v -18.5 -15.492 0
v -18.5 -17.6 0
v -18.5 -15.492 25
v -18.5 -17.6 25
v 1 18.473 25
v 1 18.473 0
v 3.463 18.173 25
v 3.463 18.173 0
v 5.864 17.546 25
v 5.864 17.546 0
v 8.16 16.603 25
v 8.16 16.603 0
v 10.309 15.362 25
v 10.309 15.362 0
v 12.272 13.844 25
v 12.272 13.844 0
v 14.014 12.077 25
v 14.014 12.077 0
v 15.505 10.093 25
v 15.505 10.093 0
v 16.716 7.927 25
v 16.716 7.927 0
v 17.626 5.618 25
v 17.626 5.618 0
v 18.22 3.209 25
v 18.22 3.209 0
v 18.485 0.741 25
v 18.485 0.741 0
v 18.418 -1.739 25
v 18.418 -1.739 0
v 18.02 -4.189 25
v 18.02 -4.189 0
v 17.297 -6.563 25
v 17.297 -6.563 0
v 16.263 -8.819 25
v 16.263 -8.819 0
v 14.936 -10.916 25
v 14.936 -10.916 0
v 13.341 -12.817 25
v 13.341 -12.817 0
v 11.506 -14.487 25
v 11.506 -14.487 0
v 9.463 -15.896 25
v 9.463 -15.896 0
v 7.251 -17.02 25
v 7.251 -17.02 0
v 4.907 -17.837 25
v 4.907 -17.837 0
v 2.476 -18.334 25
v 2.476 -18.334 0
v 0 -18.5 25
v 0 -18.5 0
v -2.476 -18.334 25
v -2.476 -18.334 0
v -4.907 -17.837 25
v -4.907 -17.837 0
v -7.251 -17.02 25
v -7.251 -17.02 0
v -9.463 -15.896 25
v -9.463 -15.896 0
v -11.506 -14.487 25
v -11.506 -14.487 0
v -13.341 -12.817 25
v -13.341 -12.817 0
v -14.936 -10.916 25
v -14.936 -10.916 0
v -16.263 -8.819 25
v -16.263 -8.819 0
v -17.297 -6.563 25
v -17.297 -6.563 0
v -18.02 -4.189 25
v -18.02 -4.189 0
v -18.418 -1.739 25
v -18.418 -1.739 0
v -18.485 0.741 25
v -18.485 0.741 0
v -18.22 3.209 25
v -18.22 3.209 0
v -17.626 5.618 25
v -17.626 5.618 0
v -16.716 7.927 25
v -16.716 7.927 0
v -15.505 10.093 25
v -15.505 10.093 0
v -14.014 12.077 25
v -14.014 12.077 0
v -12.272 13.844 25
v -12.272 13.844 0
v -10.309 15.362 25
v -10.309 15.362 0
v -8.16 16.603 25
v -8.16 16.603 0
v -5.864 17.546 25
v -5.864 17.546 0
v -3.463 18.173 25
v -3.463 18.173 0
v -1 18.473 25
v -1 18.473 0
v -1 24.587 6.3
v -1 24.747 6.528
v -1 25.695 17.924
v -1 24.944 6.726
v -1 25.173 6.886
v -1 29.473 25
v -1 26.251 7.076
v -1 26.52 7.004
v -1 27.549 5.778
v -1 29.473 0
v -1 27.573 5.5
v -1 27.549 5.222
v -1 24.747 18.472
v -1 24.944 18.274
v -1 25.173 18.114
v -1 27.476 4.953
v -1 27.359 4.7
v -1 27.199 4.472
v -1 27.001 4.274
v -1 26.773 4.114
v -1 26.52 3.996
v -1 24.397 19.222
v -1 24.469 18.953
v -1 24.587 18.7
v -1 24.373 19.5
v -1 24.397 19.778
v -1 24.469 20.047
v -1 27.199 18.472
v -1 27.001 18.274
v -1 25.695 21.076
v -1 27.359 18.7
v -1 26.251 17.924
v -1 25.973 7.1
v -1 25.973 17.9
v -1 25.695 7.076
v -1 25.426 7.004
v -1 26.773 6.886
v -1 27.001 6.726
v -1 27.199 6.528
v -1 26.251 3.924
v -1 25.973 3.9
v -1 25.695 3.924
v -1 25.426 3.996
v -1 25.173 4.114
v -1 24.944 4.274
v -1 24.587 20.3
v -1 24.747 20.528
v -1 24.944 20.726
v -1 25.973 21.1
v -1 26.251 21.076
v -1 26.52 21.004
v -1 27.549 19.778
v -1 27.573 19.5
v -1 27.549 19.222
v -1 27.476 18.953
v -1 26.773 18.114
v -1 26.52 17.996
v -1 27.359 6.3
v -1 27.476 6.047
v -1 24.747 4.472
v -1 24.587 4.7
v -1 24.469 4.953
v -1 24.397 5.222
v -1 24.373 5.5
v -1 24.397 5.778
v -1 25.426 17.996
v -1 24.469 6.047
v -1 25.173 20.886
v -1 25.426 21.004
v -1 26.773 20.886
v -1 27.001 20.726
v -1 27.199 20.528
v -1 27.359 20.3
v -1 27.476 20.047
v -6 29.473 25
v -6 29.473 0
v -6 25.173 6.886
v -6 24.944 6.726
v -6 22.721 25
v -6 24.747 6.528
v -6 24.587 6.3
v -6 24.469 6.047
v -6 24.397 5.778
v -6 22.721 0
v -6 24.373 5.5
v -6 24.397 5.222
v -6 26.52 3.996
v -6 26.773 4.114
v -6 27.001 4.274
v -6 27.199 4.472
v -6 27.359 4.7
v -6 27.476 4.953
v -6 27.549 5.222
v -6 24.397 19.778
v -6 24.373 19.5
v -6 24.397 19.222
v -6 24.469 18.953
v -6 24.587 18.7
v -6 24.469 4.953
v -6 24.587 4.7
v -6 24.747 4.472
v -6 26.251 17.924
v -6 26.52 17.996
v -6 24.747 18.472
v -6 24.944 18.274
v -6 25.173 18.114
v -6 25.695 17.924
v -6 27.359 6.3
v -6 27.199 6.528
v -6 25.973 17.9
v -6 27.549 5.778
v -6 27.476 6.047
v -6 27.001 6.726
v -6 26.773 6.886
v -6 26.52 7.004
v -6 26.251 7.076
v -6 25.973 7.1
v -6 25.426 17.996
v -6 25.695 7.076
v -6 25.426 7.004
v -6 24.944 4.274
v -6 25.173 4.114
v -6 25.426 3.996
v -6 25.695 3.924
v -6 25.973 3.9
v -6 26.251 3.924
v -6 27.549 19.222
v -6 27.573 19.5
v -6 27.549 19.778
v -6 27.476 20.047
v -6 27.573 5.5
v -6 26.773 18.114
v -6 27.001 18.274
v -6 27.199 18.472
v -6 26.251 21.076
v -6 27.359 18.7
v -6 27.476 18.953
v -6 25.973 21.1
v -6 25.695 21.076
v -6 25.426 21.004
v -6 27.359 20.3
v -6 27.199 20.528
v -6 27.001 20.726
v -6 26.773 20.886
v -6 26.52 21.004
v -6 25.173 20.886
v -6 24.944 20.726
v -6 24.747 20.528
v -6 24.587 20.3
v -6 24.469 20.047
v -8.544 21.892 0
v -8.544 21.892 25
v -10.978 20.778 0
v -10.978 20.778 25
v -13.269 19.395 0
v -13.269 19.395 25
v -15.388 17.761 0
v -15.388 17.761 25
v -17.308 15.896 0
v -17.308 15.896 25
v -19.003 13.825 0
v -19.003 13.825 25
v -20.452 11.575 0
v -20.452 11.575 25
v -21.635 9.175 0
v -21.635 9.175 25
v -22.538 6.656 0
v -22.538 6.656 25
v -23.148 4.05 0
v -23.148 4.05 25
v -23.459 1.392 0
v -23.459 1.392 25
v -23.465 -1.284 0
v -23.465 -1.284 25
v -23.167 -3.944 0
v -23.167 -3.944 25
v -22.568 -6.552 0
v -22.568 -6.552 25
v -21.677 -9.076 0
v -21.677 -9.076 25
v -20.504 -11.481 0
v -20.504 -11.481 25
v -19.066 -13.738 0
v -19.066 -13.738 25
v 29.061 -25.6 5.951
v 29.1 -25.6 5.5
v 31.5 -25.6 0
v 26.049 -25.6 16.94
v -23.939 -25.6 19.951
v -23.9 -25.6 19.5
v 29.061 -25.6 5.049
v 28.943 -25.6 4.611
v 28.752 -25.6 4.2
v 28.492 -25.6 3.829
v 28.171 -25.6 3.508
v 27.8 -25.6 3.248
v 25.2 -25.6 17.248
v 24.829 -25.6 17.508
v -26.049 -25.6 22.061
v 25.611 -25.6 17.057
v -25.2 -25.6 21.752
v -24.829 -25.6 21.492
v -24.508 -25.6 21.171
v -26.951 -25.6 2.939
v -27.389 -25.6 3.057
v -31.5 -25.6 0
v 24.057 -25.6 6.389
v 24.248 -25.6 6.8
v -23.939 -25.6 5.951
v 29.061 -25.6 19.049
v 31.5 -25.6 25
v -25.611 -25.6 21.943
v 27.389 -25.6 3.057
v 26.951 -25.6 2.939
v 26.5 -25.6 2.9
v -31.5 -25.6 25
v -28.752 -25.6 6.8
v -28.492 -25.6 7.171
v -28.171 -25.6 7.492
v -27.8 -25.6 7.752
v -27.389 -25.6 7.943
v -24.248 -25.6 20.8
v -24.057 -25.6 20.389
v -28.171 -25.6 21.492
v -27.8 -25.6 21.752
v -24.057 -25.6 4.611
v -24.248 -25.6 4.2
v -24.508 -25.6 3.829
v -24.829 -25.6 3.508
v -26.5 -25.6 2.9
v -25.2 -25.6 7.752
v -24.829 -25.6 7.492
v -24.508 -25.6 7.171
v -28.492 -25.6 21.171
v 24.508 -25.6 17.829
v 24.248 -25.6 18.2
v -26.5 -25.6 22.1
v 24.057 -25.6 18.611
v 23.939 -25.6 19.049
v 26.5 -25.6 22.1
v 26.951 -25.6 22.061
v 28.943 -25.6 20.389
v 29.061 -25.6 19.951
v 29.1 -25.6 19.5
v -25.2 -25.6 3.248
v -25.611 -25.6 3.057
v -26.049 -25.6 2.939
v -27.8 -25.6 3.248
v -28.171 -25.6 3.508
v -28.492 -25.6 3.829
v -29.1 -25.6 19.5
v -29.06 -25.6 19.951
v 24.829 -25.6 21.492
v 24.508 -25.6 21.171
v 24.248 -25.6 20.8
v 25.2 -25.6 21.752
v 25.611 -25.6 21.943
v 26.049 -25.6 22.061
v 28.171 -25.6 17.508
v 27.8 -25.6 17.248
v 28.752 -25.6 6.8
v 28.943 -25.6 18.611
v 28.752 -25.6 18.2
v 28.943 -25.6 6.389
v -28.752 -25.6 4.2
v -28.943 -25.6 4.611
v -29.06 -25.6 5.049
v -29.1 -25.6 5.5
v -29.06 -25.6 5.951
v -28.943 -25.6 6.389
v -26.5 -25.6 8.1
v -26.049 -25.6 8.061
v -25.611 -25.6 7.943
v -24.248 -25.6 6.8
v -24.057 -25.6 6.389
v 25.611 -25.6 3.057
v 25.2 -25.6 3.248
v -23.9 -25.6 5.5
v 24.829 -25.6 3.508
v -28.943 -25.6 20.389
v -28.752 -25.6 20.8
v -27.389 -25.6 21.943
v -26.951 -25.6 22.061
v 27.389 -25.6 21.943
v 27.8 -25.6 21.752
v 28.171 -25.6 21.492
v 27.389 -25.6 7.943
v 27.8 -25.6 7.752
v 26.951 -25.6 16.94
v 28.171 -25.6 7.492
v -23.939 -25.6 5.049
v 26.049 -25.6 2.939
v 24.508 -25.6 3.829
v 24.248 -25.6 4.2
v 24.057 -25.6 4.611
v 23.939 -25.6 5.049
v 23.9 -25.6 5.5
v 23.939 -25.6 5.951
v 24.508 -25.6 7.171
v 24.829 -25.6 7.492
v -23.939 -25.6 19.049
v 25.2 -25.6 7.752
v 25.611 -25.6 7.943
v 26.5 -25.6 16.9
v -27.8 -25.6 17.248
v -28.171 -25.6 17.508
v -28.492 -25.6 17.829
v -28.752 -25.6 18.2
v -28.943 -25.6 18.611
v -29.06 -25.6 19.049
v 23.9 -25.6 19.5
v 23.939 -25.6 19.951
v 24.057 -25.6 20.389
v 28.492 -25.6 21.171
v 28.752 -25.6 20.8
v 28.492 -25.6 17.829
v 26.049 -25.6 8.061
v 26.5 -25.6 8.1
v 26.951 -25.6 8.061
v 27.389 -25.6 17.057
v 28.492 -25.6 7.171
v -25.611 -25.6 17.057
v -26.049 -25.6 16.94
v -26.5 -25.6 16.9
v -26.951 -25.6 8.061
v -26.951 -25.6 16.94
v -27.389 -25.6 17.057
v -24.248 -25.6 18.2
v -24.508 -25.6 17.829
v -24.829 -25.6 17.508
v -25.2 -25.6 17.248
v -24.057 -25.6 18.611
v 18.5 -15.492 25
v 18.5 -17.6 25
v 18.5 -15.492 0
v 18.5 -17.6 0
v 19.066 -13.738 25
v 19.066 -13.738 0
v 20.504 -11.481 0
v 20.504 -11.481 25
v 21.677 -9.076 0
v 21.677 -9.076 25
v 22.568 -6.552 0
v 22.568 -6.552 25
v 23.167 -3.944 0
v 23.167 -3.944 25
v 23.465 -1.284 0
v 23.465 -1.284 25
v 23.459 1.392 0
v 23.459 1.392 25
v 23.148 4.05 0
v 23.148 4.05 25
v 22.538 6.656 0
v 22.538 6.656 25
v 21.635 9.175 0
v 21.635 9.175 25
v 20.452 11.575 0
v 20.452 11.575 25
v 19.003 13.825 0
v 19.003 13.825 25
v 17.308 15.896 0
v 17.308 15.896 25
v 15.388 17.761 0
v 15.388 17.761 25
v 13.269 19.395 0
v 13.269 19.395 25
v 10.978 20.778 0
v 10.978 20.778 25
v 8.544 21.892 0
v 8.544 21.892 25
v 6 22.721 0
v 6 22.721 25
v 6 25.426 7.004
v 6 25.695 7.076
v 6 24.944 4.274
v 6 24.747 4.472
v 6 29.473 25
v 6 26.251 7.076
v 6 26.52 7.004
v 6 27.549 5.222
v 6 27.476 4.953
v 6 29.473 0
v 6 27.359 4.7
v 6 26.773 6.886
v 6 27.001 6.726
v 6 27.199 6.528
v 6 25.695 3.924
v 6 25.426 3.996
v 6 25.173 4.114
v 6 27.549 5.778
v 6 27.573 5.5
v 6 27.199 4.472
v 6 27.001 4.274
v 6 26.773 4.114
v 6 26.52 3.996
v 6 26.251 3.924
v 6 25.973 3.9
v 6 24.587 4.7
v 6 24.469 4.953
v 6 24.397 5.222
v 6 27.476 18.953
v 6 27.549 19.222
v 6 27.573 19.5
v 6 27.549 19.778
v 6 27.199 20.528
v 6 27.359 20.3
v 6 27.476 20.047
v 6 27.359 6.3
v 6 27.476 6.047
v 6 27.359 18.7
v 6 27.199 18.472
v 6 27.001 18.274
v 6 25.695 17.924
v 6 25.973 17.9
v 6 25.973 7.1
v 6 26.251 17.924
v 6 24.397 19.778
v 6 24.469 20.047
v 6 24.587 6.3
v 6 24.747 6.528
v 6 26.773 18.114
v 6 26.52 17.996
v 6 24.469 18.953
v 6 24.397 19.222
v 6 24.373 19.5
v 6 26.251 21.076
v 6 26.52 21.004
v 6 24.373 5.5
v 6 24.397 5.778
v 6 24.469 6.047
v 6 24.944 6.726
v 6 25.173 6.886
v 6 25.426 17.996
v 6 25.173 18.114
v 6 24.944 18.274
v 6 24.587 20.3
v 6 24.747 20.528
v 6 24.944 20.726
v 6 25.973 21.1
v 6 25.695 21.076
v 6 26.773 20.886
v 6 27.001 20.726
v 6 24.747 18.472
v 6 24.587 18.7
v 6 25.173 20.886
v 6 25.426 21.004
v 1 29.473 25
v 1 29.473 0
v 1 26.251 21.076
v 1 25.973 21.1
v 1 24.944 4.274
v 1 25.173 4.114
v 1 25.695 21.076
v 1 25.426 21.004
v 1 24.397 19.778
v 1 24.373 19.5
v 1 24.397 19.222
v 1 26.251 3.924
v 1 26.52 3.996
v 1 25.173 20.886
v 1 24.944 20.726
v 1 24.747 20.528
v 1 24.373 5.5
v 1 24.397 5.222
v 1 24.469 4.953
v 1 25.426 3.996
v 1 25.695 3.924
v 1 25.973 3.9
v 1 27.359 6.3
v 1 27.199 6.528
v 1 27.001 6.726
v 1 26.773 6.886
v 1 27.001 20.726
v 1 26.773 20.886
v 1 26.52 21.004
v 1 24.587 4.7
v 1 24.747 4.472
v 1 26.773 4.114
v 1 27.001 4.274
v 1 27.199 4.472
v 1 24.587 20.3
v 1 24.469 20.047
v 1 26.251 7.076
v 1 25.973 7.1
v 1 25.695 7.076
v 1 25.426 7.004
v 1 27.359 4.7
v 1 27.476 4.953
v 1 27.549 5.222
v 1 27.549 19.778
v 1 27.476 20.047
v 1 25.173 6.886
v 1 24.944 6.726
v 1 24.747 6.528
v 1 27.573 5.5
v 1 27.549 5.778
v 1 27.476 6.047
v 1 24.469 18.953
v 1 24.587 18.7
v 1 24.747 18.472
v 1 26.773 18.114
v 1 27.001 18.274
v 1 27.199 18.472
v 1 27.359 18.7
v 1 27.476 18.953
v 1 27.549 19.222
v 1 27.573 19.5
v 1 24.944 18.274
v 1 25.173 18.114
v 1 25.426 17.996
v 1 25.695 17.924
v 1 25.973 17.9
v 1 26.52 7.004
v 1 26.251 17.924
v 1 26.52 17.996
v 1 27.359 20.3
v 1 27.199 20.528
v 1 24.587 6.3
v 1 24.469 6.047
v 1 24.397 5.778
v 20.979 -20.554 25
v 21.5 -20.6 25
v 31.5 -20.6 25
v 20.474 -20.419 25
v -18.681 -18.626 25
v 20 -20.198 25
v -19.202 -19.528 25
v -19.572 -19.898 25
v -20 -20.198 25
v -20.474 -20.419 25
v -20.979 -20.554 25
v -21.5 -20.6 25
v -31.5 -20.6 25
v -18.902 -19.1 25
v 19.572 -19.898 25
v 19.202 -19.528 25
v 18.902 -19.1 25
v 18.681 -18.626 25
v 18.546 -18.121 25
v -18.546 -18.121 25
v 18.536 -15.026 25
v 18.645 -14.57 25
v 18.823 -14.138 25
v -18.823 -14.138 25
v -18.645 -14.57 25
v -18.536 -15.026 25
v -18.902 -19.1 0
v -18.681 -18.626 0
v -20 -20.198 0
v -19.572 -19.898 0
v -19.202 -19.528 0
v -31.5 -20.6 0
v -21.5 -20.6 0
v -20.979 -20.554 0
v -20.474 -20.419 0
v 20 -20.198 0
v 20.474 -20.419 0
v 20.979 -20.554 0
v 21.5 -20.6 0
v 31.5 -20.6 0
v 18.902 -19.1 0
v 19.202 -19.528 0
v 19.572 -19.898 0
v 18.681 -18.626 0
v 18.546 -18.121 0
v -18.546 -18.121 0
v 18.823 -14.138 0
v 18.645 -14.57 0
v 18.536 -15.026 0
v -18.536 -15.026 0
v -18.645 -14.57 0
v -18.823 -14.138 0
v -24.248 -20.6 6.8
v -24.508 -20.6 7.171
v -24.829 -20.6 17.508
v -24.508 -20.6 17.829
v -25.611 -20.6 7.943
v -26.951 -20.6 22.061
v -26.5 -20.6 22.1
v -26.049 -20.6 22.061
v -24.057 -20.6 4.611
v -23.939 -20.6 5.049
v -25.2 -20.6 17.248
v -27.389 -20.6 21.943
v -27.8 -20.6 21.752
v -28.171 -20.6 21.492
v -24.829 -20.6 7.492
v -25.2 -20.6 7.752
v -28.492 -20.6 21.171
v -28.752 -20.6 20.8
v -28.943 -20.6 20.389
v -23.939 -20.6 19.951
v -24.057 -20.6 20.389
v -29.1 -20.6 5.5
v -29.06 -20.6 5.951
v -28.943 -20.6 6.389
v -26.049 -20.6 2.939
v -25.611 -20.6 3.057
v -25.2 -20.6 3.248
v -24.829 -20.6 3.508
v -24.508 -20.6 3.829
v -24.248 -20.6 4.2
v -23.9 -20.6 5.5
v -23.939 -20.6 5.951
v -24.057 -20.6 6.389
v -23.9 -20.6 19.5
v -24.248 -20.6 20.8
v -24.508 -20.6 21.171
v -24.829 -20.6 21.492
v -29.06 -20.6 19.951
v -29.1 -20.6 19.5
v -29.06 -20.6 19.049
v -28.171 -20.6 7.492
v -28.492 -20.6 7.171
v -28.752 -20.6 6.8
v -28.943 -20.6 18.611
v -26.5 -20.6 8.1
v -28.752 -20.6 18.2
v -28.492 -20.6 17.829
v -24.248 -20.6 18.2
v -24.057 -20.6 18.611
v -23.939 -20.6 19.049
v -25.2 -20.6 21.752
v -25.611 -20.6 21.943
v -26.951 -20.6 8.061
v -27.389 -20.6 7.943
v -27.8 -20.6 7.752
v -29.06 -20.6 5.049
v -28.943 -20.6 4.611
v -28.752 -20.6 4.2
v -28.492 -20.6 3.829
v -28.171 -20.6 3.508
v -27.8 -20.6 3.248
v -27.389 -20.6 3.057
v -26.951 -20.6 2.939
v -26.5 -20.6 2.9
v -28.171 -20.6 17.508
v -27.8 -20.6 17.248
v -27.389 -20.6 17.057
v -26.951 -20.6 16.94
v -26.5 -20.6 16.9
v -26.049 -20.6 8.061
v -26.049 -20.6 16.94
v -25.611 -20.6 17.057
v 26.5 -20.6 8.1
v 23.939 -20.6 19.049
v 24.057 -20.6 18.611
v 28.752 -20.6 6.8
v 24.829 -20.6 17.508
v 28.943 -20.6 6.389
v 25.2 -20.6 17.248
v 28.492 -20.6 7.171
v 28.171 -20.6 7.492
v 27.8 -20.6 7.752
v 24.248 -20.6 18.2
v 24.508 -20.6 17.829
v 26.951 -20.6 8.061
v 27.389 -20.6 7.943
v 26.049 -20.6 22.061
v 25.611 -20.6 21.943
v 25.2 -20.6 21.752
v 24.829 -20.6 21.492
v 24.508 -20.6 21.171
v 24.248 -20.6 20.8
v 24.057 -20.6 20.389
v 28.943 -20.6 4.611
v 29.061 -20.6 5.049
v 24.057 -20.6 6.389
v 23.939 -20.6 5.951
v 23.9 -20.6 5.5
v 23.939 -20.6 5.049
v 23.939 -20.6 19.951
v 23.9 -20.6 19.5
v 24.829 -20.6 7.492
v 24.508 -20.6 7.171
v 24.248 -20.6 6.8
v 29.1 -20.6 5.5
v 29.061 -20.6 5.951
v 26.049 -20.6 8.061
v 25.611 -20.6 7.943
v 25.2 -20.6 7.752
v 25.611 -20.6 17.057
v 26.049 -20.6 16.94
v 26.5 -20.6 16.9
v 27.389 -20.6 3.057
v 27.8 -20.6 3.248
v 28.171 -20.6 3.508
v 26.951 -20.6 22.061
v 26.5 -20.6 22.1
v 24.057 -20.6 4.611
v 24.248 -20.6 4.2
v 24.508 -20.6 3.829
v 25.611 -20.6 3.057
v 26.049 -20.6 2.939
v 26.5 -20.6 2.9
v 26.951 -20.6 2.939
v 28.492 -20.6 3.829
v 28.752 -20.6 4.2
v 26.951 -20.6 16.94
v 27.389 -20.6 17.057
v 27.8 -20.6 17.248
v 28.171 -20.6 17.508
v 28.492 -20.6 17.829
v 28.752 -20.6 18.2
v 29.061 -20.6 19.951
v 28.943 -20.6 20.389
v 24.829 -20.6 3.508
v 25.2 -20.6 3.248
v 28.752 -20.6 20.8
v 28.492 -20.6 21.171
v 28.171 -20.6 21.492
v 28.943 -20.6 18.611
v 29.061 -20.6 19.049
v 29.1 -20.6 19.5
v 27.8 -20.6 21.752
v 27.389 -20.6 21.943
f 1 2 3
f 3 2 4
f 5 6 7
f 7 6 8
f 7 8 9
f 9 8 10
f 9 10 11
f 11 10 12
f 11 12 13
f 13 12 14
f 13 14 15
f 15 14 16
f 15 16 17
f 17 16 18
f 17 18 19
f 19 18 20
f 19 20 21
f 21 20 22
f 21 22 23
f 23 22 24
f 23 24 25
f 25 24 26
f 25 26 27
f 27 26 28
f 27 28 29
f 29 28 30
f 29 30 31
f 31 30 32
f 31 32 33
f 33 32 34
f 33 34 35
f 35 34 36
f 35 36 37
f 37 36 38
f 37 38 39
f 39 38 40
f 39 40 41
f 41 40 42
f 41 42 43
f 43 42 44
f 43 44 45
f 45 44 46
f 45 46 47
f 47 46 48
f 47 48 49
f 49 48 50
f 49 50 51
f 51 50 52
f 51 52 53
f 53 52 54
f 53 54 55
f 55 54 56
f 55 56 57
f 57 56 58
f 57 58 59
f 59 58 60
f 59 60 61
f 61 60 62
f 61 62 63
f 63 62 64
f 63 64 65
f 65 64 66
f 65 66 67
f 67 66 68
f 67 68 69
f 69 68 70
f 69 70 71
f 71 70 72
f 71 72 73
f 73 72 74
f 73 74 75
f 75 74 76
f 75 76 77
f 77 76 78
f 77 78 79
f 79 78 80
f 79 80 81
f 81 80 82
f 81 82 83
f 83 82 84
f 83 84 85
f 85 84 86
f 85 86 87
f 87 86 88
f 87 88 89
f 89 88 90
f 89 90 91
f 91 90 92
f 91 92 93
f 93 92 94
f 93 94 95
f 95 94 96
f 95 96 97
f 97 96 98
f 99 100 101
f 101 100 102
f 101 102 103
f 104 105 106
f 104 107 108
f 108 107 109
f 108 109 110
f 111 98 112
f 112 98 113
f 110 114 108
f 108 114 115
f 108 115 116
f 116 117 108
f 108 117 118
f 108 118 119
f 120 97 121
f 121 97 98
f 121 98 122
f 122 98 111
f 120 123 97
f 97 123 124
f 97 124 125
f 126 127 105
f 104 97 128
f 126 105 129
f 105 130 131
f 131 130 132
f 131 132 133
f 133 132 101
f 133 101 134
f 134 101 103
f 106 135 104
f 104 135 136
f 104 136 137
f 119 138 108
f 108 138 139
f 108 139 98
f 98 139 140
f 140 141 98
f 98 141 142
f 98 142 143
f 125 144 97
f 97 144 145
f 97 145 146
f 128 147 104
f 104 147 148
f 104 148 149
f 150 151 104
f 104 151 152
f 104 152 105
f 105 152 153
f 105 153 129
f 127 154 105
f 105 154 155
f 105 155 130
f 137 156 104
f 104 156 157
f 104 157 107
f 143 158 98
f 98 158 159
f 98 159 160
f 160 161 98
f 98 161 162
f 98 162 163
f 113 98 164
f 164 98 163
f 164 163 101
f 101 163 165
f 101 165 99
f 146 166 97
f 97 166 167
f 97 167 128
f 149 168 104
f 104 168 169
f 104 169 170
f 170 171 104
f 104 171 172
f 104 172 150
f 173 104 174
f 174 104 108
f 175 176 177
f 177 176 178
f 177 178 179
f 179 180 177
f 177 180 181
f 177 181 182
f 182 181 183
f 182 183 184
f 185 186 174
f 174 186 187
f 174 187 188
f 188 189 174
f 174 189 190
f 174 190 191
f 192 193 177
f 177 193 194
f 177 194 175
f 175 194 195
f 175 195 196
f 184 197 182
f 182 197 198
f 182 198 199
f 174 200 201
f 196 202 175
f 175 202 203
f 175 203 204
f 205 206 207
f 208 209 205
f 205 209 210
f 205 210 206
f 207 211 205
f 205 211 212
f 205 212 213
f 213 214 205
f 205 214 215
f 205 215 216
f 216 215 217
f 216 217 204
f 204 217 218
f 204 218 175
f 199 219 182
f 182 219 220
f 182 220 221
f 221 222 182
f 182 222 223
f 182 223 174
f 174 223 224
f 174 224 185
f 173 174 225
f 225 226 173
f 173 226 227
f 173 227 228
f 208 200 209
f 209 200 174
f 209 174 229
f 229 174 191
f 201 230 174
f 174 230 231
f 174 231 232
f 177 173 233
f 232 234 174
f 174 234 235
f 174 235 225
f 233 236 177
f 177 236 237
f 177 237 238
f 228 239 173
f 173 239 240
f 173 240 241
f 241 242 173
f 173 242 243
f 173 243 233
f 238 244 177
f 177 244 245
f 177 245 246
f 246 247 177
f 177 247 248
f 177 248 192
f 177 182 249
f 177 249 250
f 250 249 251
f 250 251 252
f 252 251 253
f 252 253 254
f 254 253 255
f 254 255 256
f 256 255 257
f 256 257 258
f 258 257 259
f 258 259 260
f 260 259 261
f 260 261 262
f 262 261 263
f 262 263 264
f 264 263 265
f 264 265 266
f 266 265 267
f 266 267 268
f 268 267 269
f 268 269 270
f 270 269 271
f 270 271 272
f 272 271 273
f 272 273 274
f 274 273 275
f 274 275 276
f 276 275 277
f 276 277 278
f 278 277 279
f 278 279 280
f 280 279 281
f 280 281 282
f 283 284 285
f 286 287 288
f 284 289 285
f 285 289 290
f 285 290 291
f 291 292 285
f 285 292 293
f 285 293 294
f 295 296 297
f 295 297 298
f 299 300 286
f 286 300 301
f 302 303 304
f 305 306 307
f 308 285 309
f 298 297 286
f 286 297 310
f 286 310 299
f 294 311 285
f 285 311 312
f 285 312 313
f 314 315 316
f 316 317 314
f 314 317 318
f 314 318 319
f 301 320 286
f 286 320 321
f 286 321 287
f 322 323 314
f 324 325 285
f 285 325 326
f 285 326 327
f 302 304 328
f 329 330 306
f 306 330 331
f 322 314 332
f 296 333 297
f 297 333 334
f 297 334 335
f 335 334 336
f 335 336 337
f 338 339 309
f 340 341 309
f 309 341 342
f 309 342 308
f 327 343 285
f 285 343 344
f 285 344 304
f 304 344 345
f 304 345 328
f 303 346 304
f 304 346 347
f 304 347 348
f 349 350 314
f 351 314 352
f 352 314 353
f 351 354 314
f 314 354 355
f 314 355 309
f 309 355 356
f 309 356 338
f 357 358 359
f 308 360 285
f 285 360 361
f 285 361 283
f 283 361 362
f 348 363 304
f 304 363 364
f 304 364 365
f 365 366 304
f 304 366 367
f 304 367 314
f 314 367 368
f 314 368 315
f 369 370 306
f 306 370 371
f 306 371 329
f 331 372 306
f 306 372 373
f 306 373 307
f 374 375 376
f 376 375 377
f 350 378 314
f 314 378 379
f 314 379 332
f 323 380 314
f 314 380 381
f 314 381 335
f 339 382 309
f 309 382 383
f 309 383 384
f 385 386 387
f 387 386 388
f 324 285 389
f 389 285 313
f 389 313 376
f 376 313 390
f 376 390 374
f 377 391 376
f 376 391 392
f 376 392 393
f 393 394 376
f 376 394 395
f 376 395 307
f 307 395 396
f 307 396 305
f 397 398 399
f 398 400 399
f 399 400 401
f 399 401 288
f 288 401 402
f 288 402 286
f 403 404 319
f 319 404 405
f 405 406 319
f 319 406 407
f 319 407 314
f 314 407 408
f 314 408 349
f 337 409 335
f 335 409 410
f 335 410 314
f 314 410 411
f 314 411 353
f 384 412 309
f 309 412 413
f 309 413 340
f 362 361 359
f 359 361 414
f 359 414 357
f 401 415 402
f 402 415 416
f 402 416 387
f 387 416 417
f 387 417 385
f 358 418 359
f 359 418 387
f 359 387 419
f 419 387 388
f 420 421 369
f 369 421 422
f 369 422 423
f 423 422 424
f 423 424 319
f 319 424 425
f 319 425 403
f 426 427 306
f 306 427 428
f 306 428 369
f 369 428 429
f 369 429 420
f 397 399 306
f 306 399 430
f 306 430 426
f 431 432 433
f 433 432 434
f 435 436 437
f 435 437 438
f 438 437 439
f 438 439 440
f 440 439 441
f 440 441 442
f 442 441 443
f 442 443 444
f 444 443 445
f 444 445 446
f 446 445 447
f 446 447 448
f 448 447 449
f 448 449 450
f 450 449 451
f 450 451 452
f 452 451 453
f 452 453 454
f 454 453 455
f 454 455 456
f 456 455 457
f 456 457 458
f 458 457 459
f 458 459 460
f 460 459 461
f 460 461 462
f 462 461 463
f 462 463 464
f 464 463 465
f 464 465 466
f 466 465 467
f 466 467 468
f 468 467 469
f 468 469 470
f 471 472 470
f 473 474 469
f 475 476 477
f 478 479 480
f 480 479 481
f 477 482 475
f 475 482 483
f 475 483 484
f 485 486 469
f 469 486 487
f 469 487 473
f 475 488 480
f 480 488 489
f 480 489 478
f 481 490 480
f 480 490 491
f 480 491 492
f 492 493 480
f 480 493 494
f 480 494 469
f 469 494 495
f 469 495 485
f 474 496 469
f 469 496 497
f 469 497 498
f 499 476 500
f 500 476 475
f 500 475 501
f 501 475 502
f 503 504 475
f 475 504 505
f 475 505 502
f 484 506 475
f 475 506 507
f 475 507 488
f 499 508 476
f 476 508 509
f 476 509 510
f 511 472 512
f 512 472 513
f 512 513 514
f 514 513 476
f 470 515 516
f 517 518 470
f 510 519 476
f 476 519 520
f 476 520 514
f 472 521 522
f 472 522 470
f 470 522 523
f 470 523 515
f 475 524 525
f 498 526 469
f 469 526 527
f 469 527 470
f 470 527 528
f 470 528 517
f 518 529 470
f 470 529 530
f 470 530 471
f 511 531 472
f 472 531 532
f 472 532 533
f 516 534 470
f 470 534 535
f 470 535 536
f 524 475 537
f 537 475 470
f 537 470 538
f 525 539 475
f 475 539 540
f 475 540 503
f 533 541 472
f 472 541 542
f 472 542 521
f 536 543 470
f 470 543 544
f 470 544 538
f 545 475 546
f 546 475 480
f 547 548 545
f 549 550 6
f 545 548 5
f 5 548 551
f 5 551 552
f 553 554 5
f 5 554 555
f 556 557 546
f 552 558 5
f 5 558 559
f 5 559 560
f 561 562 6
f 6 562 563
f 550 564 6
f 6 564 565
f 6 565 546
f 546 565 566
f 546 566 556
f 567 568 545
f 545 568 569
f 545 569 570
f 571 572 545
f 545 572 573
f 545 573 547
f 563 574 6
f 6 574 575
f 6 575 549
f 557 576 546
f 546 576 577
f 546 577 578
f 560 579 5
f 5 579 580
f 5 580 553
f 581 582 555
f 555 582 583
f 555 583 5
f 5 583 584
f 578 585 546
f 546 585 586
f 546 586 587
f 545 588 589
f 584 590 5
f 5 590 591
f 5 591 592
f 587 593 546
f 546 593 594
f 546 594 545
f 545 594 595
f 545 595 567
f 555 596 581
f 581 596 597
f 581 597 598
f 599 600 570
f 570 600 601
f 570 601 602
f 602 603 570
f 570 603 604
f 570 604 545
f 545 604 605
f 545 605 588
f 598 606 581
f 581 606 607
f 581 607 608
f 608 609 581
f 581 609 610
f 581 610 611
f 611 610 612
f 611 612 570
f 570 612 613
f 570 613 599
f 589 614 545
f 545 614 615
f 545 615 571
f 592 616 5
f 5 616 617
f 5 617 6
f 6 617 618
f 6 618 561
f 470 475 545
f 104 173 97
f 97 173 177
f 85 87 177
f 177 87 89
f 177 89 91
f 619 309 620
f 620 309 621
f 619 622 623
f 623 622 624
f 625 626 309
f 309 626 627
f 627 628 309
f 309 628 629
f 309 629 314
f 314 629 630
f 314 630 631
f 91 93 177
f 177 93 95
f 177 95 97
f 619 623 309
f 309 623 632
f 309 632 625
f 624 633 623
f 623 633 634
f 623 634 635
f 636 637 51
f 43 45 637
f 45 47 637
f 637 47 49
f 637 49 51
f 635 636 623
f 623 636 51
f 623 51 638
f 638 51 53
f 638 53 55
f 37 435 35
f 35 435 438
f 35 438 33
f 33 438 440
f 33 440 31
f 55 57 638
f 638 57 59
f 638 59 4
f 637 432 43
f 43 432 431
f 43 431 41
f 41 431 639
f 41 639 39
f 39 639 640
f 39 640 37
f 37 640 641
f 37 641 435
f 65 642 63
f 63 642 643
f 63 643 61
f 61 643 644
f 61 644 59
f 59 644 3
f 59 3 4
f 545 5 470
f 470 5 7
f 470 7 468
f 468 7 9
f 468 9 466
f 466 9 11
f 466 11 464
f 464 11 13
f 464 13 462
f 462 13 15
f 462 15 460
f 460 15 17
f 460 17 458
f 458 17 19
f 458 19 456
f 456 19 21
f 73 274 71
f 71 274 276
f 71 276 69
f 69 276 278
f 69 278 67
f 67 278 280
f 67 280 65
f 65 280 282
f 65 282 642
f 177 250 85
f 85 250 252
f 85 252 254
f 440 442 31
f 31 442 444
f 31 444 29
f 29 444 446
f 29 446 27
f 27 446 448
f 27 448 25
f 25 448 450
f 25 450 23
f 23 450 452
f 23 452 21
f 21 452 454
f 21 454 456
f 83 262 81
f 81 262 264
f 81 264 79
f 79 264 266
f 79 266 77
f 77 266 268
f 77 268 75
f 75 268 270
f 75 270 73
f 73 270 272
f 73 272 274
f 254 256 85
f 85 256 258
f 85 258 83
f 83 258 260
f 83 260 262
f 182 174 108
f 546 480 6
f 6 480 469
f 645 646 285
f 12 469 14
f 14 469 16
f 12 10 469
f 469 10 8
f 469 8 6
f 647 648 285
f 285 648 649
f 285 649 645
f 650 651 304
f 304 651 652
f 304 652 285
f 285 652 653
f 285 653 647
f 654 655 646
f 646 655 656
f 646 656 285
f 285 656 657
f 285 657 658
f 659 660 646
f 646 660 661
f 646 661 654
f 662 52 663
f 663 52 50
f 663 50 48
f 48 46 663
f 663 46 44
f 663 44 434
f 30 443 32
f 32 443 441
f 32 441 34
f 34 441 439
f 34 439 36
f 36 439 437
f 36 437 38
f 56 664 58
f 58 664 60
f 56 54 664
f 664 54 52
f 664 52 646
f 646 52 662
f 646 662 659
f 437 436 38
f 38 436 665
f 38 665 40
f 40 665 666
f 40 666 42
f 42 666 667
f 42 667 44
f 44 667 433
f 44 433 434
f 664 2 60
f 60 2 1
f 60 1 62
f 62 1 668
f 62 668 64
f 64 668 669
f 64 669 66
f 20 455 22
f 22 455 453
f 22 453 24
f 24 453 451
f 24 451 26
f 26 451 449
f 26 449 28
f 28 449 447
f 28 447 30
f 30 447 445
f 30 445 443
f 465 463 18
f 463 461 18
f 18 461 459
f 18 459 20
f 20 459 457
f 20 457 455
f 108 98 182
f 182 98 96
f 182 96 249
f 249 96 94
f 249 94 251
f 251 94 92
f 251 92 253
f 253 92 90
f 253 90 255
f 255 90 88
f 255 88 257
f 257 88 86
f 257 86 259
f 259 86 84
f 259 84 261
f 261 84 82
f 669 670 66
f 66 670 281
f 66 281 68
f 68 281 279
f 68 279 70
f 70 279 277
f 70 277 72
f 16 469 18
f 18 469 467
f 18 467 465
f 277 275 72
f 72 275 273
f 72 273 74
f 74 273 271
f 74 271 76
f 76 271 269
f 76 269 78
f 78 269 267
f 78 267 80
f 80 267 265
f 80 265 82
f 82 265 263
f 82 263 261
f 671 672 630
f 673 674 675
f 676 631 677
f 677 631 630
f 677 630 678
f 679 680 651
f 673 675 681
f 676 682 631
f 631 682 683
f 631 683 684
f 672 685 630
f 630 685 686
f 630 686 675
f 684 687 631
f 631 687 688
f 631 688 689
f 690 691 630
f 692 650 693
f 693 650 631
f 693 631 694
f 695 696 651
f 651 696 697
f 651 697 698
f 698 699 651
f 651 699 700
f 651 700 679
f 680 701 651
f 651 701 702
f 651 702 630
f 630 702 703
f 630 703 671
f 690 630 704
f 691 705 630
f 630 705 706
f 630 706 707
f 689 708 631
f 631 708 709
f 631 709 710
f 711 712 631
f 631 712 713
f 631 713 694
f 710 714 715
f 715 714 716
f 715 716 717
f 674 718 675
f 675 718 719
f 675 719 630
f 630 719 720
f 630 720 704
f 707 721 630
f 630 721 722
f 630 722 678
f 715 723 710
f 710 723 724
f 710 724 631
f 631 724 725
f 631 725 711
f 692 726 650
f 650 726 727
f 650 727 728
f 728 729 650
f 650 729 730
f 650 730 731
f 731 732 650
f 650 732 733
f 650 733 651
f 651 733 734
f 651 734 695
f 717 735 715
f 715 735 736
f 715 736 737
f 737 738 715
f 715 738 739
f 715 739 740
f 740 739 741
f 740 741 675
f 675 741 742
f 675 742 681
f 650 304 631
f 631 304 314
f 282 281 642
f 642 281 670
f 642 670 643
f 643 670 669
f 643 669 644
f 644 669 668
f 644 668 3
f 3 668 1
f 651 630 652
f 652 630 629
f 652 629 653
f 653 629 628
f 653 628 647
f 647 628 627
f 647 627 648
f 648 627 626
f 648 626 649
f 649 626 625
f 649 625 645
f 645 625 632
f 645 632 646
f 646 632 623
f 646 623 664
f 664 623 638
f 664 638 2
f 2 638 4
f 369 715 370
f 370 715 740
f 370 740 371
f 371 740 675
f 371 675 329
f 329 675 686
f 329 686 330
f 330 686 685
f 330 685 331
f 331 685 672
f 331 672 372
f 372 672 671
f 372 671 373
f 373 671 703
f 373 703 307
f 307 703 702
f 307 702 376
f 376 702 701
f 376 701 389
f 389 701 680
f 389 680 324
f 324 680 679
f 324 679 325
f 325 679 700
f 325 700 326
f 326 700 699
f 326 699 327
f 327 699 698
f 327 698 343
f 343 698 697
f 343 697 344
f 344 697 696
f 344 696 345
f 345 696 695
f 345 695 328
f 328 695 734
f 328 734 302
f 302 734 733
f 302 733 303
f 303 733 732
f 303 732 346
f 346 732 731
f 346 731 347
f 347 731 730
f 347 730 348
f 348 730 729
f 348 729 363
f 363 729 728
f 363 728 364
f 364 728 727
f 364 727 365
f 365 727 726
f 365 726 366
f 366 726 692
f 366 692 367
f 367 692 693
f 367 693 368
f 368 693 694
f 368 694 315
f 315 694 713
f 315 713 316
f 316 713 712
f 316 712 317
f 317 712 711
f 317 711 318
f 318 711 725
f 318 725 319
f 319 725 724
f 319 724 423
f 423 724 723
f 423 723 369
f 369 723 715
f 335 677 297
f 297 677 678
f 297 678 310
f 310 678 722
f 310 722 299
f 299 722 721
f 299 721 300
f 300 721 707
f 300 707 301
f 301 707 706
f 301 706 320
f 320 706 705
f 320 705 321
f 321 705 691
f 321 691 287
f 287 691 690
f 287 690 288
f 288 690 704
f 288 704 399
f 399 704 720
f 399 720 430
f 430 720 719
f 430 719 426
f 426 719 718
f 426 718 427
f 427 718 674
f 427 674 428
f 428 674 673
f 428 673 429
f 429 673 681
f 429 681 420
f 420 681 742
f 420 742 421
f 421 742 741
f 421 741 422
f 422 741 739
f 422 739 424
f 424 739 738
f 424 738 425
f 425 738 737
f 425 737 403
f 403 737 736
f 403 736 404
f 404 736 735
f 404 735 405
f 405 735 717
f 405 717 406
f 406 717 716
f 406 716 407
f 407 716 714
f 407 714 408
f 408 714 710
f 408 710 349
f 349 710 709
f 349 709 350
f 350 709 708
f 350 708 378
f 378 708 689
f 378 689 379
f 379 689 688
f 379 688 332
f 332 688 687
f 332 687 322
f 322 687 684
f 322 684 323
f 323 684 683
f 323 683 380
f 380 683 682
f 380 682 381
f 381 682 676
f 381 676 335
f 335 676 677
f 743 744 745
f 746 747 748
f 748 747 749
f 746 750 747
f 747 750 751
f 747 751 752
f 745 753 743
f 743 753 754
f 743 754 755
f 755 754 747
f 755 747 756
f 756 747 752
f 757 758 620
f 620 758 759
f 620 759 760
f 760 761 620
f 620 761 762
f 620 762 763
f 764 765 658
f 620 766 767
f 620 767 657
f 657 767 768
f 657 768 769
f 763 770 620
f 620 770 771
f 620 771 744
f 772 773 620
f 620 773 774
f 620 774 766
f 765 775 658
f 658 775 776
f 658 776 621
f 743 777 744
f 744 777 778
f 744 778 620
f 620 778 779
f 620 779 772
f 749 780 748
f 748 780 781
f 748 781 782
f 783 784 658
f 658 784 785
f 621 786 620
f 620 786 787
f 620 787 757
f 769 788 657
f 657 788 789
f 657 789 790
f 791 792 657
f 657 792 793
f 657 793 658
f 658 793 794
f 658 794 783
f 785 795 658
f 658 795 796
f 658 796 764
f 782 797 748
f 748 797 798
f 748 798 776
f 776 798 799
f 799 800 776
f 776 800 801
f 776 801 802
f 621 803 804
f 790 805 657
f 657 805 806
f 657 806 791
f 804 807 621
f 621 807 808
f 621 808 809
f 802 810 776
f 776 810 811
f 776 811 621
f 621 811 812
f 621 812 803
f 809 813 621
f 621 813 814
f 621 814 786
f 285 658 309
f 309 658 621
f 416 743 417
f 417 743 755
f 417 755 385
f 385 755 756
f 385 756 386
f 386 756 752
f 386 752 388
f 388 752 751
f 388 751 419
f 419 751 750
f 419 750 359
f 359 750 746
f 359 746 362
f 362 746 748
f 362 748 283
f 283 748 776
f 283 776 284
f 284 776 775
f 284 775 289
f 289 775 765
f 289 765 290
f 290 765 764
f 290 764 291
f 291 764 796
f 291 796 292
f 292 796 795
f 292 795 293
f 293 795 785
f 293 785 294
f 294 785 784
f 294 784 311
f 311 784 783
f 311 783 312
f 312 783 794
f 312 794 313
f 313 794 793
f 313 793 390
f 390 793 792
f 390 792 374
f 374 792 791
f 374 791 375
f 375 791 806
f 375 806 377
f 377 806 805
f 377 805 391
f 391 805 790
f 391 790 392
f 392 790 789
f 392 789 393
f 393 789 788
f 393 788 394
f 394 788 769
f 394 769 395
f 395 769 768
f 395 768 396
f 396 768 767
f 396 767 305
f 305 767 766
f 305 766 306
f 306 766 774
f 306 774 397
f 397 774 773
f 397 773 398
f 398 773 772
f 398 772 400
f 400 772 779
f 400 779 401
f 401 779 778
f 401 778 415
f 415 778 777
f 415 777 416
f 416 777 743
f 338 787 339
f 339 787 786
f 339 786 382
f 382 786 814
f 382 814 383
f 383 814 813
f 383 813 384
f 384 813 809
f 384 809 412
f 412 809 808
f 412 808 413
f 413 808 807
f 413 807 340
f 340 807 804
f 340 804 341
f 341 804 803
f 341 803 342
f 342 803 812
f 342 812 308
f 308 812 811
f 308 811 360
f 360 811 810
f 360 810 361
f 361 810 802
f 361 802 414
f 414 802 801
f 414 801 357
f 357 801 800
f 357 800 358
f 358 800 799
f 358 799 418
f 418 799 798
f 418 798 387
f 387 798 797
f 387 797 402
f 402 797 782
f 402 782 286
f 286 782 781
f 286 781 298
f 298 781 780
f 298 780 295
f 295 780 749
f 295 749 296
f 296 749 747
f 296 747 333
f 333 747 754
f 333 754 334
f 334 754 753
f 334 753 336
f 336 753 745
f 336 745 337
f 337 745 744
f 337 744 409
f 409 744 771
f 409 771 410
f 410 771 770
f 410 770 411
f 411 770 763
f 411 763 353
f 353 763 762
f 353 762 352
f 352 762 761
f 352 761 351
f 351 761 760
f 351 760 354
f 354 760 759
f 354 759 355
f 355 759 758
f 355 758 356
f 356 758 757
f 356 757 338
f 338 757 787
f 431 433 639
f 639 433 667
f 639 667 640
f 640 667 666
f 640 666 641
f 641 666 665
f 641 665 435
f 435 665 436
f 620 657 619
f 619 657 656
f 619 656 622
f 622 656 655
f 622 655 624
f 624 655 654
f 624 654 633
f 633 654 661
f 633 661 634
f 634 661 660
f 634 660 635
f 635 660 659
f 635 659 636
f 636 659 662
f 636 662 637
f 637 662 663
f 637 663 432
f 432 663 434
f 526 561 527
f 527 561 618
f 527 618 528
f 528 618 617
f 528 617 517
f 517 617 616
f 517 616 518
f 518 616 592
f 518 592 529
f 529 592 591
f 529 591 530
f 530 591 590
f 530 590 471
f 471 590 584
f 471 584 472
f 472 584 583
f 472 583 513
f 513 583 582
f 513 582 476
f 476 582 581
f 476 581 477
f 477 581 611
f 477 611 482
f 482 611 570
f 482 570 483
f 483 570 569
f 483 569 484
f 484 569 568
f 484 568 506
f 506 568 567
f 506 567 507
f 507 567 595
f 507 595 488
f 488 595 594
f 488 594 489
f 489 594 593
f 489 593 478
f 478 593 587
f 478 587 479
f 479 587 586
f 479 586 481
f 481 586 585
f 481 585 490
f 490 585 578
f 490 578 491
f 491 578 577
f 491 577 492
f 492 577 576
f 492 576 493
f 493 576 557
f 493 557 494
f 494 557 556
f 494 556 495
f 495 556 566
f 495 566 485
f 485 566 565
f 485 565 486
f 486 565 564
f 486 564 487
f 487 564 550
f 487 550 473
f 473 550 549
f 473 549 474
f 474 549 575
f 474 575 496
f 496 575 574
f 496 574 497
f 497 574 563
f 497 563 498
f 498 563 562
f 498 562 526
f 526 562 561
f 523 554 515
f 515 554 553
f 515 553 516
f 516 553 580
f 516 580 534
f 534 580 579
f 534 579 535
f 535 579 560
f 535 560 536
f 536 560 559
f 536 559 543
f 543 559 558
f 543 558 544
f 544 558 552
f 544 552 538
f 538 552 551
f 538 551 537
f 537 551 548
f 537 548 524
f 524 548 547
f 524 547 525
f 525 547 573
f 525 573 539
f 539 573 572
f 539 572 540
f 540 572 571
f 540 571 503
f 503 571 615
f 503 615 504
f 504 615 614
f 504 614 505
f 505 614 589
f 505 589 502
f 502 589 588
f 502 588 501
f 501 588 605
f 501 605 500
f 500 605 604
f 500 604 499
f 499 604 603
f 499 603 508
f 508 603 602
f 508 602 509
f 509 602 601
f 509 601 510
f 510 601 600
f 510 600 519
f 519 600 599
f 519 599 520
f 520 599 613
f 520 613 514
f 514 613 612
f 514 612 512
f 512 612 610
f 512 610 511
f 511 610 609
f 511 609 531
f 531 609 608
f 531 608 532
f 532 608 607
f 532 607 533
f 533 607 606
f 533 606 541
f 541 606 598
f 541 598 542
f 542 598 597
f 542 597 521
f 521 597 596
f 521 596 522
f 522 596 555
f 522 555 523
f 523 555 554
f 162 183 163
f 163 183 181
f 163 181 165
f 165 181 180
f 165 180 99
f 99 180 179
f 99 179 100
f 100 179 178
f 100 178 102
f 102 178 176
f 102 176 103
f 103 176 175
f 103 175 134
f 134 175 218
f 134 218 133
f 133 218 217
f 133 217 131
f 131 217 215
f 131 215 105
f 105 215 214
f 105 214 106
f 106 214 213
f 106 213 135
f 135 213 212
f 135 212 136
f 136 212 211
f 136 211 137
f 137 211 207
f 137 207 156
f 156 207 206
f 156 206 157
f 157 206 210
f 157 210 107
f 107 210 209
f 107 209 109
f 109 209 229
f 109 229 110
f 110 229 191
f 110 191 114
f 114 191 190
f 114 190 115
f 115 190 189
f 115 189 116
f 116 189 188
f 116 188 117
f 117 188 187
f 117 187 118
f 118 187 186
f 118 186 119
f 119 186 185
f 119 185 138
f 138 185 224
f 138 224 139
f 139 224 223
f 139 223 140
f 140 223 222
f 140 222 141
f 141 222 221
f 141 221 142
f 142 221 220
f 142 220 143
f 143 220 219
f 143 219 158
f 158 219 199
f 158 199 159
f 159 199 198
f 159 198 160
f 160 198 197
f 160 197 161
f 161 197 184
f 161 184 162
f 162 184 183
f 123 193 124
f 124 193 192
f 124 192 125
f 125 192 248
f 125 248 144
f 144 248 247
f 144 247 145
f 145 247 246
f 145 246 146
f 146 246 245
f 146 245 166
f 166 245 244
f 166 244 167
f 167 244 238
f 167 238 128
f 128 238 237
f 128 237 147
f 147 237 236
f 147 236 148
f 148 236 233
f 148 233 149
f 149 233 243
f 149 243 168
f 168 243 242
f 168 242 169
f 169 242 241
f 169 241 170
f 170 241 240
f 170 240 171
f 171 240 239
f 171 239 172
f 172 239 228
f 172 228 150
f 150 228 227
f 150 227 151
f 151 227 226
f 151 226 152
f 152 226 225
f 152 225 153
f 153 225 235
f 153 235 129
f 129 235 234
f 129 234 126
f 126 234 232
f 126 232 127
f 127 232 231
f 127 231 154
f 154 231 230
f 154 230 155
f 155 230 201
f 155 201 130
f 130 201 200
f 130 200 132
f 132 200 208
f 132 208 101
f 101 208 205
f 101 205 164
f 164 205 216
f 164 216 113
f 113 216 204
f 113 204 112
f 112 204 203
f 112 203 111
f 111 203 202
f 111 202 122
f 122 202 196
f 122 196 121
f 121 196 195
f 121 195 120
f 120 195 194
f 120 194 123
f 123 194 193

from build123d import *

# Parameters (mm, degrees)
BOSS_EXTRUDE1_DEPTH = 25
SKETCH2_W           = 25
SKETCH2_H           = 5
BOSS_EXTRUDE2_DEPTH = 13
FILLET1_R           = 3
SKETCH3_R           = 2.6
CUT_EXTRUDE1_DEPTH  = 65.222664554
FILLET2_R           = 3
SKETCH4_R           = 1.6
CUT_EXTRUDE2_DEPTH  = 54.850765737


with BuildPart() as part:
    # Sketch1 → Boss-Extrude1 (new body)
    with BuildSketch(Plane.XY):
        with BuildLine():
            Line((-18.5, -25.6), (18.5, -25.6))
            Line((18.5, -25.6), (18.5, -14.491376746))
            ThreePointArc((18.5, -14.491376746), (22.27678764, 7.482962811), (6, 22.721135535))
            Line((6, 22.721135535), (6, 29.472953202))
            Line((6, 29.472953202), (1, 29.472953202))
            Line((1, 29.472953202), (1, 18.472953202))
            ThreePointArc((1, 18.472953202), (0, -18.5), (-1, 18.472953202))
            Line((-1, 18.472953202), (-1, 29.472953202))
            Line((-1, 29.472953202), (-6, 29.472953202))
            Line((-6, 29.472953202), (-6, 22.721135535))
            ThreePointArc((-6, 22.721135535), (-22.27678764, 7.482962811), (-18.5, -14.491376746))
            Line((-18.5, -14.491376746), (-18.5, -25.6))
        make_face()
    extrude(amount=BOSS_EXTRUDE1_DEPTH)

    # Sketch2 → Boss-Extrude2 (add)
    with BuildSketch(Plane.ZY.offset(18.5)):
        with Locations((12.5, -23.1)):
            Rectangle(SKETCH2_W, SKETCH2_H)
    boss_extrude2 = extrude(amount=BOSS_EXTRUDE2_DEPTH)

    # Fillet1
    fillet1_edges = [part.edges().sort_by_distance(p)[0] for p in [
        (-18.5, -14.491376746, 12.5),
        (-18.5, -20.6, 12.5),
    ]]
    fillet(fillet1_edges, radius=FILLET1_R)

    # Sketch3 → Cut-Extrude1 (cut, through all)
    with BuildSketch(Plane(origin=(0, -20.6, 0), x_dir=(1, 0, 0), z_dir=(0, 1, 0))):
        with Locations(Location((-26.5, -19.5, 0), (0, 0, 270))):
            Circle(SKETCH3_R)
        with Locations(Location((-26.5, -5.5, 0), (0, 0, 270))):
            Circle(SKETCH3_R)
    cut_extrude1 = extrude(amount=-CUT_EXTRUDE1_DEPTH, mode=Mode.SUBTRACT)

    # Mirror3: Boss-Extrude2, Cut-Extrude1 across plane
    add(boss_extrude2.mirror(Plane(origin=(0, 0, 0), x_dir=(0, 0, 1), z_dir=(1, 0, 0))))
    add(cut_extrude1.mirror(Plane(origin=(0, 0, 0), x_dir=(0, 0, 1), z_dir=(1, 0, 0))), mode=Mode.SUBTRACT)

    # Fillet2
    fillet2_edges = [part.edges().sort_by_distance(p)[0] for p in [
        (18.5, -14.491376746, 12.5),
        (18.5, -20.6, 12.5),
    ]]
    fillet(fillet2_edges, radius=FILLET2_R)

    # Sketch4 → Cut-Extrude2 (cut, through all)
    with BuildSketch(Plane.ZY.offset(6)):
        with Locations(Location((19.5, 25.972953202, 0), (0, 0, 270))):
            Circle(SKETCH4_R)
        with Locations(Location((5.5, 25.972953202, 0), (0, 0, 270))):
            Circle(SKETCH4_R)
    extrude(amount=-CUT_EXTRUDE2_DEPTH, mode=Mode.SUBTRACT)


solid = part.part
